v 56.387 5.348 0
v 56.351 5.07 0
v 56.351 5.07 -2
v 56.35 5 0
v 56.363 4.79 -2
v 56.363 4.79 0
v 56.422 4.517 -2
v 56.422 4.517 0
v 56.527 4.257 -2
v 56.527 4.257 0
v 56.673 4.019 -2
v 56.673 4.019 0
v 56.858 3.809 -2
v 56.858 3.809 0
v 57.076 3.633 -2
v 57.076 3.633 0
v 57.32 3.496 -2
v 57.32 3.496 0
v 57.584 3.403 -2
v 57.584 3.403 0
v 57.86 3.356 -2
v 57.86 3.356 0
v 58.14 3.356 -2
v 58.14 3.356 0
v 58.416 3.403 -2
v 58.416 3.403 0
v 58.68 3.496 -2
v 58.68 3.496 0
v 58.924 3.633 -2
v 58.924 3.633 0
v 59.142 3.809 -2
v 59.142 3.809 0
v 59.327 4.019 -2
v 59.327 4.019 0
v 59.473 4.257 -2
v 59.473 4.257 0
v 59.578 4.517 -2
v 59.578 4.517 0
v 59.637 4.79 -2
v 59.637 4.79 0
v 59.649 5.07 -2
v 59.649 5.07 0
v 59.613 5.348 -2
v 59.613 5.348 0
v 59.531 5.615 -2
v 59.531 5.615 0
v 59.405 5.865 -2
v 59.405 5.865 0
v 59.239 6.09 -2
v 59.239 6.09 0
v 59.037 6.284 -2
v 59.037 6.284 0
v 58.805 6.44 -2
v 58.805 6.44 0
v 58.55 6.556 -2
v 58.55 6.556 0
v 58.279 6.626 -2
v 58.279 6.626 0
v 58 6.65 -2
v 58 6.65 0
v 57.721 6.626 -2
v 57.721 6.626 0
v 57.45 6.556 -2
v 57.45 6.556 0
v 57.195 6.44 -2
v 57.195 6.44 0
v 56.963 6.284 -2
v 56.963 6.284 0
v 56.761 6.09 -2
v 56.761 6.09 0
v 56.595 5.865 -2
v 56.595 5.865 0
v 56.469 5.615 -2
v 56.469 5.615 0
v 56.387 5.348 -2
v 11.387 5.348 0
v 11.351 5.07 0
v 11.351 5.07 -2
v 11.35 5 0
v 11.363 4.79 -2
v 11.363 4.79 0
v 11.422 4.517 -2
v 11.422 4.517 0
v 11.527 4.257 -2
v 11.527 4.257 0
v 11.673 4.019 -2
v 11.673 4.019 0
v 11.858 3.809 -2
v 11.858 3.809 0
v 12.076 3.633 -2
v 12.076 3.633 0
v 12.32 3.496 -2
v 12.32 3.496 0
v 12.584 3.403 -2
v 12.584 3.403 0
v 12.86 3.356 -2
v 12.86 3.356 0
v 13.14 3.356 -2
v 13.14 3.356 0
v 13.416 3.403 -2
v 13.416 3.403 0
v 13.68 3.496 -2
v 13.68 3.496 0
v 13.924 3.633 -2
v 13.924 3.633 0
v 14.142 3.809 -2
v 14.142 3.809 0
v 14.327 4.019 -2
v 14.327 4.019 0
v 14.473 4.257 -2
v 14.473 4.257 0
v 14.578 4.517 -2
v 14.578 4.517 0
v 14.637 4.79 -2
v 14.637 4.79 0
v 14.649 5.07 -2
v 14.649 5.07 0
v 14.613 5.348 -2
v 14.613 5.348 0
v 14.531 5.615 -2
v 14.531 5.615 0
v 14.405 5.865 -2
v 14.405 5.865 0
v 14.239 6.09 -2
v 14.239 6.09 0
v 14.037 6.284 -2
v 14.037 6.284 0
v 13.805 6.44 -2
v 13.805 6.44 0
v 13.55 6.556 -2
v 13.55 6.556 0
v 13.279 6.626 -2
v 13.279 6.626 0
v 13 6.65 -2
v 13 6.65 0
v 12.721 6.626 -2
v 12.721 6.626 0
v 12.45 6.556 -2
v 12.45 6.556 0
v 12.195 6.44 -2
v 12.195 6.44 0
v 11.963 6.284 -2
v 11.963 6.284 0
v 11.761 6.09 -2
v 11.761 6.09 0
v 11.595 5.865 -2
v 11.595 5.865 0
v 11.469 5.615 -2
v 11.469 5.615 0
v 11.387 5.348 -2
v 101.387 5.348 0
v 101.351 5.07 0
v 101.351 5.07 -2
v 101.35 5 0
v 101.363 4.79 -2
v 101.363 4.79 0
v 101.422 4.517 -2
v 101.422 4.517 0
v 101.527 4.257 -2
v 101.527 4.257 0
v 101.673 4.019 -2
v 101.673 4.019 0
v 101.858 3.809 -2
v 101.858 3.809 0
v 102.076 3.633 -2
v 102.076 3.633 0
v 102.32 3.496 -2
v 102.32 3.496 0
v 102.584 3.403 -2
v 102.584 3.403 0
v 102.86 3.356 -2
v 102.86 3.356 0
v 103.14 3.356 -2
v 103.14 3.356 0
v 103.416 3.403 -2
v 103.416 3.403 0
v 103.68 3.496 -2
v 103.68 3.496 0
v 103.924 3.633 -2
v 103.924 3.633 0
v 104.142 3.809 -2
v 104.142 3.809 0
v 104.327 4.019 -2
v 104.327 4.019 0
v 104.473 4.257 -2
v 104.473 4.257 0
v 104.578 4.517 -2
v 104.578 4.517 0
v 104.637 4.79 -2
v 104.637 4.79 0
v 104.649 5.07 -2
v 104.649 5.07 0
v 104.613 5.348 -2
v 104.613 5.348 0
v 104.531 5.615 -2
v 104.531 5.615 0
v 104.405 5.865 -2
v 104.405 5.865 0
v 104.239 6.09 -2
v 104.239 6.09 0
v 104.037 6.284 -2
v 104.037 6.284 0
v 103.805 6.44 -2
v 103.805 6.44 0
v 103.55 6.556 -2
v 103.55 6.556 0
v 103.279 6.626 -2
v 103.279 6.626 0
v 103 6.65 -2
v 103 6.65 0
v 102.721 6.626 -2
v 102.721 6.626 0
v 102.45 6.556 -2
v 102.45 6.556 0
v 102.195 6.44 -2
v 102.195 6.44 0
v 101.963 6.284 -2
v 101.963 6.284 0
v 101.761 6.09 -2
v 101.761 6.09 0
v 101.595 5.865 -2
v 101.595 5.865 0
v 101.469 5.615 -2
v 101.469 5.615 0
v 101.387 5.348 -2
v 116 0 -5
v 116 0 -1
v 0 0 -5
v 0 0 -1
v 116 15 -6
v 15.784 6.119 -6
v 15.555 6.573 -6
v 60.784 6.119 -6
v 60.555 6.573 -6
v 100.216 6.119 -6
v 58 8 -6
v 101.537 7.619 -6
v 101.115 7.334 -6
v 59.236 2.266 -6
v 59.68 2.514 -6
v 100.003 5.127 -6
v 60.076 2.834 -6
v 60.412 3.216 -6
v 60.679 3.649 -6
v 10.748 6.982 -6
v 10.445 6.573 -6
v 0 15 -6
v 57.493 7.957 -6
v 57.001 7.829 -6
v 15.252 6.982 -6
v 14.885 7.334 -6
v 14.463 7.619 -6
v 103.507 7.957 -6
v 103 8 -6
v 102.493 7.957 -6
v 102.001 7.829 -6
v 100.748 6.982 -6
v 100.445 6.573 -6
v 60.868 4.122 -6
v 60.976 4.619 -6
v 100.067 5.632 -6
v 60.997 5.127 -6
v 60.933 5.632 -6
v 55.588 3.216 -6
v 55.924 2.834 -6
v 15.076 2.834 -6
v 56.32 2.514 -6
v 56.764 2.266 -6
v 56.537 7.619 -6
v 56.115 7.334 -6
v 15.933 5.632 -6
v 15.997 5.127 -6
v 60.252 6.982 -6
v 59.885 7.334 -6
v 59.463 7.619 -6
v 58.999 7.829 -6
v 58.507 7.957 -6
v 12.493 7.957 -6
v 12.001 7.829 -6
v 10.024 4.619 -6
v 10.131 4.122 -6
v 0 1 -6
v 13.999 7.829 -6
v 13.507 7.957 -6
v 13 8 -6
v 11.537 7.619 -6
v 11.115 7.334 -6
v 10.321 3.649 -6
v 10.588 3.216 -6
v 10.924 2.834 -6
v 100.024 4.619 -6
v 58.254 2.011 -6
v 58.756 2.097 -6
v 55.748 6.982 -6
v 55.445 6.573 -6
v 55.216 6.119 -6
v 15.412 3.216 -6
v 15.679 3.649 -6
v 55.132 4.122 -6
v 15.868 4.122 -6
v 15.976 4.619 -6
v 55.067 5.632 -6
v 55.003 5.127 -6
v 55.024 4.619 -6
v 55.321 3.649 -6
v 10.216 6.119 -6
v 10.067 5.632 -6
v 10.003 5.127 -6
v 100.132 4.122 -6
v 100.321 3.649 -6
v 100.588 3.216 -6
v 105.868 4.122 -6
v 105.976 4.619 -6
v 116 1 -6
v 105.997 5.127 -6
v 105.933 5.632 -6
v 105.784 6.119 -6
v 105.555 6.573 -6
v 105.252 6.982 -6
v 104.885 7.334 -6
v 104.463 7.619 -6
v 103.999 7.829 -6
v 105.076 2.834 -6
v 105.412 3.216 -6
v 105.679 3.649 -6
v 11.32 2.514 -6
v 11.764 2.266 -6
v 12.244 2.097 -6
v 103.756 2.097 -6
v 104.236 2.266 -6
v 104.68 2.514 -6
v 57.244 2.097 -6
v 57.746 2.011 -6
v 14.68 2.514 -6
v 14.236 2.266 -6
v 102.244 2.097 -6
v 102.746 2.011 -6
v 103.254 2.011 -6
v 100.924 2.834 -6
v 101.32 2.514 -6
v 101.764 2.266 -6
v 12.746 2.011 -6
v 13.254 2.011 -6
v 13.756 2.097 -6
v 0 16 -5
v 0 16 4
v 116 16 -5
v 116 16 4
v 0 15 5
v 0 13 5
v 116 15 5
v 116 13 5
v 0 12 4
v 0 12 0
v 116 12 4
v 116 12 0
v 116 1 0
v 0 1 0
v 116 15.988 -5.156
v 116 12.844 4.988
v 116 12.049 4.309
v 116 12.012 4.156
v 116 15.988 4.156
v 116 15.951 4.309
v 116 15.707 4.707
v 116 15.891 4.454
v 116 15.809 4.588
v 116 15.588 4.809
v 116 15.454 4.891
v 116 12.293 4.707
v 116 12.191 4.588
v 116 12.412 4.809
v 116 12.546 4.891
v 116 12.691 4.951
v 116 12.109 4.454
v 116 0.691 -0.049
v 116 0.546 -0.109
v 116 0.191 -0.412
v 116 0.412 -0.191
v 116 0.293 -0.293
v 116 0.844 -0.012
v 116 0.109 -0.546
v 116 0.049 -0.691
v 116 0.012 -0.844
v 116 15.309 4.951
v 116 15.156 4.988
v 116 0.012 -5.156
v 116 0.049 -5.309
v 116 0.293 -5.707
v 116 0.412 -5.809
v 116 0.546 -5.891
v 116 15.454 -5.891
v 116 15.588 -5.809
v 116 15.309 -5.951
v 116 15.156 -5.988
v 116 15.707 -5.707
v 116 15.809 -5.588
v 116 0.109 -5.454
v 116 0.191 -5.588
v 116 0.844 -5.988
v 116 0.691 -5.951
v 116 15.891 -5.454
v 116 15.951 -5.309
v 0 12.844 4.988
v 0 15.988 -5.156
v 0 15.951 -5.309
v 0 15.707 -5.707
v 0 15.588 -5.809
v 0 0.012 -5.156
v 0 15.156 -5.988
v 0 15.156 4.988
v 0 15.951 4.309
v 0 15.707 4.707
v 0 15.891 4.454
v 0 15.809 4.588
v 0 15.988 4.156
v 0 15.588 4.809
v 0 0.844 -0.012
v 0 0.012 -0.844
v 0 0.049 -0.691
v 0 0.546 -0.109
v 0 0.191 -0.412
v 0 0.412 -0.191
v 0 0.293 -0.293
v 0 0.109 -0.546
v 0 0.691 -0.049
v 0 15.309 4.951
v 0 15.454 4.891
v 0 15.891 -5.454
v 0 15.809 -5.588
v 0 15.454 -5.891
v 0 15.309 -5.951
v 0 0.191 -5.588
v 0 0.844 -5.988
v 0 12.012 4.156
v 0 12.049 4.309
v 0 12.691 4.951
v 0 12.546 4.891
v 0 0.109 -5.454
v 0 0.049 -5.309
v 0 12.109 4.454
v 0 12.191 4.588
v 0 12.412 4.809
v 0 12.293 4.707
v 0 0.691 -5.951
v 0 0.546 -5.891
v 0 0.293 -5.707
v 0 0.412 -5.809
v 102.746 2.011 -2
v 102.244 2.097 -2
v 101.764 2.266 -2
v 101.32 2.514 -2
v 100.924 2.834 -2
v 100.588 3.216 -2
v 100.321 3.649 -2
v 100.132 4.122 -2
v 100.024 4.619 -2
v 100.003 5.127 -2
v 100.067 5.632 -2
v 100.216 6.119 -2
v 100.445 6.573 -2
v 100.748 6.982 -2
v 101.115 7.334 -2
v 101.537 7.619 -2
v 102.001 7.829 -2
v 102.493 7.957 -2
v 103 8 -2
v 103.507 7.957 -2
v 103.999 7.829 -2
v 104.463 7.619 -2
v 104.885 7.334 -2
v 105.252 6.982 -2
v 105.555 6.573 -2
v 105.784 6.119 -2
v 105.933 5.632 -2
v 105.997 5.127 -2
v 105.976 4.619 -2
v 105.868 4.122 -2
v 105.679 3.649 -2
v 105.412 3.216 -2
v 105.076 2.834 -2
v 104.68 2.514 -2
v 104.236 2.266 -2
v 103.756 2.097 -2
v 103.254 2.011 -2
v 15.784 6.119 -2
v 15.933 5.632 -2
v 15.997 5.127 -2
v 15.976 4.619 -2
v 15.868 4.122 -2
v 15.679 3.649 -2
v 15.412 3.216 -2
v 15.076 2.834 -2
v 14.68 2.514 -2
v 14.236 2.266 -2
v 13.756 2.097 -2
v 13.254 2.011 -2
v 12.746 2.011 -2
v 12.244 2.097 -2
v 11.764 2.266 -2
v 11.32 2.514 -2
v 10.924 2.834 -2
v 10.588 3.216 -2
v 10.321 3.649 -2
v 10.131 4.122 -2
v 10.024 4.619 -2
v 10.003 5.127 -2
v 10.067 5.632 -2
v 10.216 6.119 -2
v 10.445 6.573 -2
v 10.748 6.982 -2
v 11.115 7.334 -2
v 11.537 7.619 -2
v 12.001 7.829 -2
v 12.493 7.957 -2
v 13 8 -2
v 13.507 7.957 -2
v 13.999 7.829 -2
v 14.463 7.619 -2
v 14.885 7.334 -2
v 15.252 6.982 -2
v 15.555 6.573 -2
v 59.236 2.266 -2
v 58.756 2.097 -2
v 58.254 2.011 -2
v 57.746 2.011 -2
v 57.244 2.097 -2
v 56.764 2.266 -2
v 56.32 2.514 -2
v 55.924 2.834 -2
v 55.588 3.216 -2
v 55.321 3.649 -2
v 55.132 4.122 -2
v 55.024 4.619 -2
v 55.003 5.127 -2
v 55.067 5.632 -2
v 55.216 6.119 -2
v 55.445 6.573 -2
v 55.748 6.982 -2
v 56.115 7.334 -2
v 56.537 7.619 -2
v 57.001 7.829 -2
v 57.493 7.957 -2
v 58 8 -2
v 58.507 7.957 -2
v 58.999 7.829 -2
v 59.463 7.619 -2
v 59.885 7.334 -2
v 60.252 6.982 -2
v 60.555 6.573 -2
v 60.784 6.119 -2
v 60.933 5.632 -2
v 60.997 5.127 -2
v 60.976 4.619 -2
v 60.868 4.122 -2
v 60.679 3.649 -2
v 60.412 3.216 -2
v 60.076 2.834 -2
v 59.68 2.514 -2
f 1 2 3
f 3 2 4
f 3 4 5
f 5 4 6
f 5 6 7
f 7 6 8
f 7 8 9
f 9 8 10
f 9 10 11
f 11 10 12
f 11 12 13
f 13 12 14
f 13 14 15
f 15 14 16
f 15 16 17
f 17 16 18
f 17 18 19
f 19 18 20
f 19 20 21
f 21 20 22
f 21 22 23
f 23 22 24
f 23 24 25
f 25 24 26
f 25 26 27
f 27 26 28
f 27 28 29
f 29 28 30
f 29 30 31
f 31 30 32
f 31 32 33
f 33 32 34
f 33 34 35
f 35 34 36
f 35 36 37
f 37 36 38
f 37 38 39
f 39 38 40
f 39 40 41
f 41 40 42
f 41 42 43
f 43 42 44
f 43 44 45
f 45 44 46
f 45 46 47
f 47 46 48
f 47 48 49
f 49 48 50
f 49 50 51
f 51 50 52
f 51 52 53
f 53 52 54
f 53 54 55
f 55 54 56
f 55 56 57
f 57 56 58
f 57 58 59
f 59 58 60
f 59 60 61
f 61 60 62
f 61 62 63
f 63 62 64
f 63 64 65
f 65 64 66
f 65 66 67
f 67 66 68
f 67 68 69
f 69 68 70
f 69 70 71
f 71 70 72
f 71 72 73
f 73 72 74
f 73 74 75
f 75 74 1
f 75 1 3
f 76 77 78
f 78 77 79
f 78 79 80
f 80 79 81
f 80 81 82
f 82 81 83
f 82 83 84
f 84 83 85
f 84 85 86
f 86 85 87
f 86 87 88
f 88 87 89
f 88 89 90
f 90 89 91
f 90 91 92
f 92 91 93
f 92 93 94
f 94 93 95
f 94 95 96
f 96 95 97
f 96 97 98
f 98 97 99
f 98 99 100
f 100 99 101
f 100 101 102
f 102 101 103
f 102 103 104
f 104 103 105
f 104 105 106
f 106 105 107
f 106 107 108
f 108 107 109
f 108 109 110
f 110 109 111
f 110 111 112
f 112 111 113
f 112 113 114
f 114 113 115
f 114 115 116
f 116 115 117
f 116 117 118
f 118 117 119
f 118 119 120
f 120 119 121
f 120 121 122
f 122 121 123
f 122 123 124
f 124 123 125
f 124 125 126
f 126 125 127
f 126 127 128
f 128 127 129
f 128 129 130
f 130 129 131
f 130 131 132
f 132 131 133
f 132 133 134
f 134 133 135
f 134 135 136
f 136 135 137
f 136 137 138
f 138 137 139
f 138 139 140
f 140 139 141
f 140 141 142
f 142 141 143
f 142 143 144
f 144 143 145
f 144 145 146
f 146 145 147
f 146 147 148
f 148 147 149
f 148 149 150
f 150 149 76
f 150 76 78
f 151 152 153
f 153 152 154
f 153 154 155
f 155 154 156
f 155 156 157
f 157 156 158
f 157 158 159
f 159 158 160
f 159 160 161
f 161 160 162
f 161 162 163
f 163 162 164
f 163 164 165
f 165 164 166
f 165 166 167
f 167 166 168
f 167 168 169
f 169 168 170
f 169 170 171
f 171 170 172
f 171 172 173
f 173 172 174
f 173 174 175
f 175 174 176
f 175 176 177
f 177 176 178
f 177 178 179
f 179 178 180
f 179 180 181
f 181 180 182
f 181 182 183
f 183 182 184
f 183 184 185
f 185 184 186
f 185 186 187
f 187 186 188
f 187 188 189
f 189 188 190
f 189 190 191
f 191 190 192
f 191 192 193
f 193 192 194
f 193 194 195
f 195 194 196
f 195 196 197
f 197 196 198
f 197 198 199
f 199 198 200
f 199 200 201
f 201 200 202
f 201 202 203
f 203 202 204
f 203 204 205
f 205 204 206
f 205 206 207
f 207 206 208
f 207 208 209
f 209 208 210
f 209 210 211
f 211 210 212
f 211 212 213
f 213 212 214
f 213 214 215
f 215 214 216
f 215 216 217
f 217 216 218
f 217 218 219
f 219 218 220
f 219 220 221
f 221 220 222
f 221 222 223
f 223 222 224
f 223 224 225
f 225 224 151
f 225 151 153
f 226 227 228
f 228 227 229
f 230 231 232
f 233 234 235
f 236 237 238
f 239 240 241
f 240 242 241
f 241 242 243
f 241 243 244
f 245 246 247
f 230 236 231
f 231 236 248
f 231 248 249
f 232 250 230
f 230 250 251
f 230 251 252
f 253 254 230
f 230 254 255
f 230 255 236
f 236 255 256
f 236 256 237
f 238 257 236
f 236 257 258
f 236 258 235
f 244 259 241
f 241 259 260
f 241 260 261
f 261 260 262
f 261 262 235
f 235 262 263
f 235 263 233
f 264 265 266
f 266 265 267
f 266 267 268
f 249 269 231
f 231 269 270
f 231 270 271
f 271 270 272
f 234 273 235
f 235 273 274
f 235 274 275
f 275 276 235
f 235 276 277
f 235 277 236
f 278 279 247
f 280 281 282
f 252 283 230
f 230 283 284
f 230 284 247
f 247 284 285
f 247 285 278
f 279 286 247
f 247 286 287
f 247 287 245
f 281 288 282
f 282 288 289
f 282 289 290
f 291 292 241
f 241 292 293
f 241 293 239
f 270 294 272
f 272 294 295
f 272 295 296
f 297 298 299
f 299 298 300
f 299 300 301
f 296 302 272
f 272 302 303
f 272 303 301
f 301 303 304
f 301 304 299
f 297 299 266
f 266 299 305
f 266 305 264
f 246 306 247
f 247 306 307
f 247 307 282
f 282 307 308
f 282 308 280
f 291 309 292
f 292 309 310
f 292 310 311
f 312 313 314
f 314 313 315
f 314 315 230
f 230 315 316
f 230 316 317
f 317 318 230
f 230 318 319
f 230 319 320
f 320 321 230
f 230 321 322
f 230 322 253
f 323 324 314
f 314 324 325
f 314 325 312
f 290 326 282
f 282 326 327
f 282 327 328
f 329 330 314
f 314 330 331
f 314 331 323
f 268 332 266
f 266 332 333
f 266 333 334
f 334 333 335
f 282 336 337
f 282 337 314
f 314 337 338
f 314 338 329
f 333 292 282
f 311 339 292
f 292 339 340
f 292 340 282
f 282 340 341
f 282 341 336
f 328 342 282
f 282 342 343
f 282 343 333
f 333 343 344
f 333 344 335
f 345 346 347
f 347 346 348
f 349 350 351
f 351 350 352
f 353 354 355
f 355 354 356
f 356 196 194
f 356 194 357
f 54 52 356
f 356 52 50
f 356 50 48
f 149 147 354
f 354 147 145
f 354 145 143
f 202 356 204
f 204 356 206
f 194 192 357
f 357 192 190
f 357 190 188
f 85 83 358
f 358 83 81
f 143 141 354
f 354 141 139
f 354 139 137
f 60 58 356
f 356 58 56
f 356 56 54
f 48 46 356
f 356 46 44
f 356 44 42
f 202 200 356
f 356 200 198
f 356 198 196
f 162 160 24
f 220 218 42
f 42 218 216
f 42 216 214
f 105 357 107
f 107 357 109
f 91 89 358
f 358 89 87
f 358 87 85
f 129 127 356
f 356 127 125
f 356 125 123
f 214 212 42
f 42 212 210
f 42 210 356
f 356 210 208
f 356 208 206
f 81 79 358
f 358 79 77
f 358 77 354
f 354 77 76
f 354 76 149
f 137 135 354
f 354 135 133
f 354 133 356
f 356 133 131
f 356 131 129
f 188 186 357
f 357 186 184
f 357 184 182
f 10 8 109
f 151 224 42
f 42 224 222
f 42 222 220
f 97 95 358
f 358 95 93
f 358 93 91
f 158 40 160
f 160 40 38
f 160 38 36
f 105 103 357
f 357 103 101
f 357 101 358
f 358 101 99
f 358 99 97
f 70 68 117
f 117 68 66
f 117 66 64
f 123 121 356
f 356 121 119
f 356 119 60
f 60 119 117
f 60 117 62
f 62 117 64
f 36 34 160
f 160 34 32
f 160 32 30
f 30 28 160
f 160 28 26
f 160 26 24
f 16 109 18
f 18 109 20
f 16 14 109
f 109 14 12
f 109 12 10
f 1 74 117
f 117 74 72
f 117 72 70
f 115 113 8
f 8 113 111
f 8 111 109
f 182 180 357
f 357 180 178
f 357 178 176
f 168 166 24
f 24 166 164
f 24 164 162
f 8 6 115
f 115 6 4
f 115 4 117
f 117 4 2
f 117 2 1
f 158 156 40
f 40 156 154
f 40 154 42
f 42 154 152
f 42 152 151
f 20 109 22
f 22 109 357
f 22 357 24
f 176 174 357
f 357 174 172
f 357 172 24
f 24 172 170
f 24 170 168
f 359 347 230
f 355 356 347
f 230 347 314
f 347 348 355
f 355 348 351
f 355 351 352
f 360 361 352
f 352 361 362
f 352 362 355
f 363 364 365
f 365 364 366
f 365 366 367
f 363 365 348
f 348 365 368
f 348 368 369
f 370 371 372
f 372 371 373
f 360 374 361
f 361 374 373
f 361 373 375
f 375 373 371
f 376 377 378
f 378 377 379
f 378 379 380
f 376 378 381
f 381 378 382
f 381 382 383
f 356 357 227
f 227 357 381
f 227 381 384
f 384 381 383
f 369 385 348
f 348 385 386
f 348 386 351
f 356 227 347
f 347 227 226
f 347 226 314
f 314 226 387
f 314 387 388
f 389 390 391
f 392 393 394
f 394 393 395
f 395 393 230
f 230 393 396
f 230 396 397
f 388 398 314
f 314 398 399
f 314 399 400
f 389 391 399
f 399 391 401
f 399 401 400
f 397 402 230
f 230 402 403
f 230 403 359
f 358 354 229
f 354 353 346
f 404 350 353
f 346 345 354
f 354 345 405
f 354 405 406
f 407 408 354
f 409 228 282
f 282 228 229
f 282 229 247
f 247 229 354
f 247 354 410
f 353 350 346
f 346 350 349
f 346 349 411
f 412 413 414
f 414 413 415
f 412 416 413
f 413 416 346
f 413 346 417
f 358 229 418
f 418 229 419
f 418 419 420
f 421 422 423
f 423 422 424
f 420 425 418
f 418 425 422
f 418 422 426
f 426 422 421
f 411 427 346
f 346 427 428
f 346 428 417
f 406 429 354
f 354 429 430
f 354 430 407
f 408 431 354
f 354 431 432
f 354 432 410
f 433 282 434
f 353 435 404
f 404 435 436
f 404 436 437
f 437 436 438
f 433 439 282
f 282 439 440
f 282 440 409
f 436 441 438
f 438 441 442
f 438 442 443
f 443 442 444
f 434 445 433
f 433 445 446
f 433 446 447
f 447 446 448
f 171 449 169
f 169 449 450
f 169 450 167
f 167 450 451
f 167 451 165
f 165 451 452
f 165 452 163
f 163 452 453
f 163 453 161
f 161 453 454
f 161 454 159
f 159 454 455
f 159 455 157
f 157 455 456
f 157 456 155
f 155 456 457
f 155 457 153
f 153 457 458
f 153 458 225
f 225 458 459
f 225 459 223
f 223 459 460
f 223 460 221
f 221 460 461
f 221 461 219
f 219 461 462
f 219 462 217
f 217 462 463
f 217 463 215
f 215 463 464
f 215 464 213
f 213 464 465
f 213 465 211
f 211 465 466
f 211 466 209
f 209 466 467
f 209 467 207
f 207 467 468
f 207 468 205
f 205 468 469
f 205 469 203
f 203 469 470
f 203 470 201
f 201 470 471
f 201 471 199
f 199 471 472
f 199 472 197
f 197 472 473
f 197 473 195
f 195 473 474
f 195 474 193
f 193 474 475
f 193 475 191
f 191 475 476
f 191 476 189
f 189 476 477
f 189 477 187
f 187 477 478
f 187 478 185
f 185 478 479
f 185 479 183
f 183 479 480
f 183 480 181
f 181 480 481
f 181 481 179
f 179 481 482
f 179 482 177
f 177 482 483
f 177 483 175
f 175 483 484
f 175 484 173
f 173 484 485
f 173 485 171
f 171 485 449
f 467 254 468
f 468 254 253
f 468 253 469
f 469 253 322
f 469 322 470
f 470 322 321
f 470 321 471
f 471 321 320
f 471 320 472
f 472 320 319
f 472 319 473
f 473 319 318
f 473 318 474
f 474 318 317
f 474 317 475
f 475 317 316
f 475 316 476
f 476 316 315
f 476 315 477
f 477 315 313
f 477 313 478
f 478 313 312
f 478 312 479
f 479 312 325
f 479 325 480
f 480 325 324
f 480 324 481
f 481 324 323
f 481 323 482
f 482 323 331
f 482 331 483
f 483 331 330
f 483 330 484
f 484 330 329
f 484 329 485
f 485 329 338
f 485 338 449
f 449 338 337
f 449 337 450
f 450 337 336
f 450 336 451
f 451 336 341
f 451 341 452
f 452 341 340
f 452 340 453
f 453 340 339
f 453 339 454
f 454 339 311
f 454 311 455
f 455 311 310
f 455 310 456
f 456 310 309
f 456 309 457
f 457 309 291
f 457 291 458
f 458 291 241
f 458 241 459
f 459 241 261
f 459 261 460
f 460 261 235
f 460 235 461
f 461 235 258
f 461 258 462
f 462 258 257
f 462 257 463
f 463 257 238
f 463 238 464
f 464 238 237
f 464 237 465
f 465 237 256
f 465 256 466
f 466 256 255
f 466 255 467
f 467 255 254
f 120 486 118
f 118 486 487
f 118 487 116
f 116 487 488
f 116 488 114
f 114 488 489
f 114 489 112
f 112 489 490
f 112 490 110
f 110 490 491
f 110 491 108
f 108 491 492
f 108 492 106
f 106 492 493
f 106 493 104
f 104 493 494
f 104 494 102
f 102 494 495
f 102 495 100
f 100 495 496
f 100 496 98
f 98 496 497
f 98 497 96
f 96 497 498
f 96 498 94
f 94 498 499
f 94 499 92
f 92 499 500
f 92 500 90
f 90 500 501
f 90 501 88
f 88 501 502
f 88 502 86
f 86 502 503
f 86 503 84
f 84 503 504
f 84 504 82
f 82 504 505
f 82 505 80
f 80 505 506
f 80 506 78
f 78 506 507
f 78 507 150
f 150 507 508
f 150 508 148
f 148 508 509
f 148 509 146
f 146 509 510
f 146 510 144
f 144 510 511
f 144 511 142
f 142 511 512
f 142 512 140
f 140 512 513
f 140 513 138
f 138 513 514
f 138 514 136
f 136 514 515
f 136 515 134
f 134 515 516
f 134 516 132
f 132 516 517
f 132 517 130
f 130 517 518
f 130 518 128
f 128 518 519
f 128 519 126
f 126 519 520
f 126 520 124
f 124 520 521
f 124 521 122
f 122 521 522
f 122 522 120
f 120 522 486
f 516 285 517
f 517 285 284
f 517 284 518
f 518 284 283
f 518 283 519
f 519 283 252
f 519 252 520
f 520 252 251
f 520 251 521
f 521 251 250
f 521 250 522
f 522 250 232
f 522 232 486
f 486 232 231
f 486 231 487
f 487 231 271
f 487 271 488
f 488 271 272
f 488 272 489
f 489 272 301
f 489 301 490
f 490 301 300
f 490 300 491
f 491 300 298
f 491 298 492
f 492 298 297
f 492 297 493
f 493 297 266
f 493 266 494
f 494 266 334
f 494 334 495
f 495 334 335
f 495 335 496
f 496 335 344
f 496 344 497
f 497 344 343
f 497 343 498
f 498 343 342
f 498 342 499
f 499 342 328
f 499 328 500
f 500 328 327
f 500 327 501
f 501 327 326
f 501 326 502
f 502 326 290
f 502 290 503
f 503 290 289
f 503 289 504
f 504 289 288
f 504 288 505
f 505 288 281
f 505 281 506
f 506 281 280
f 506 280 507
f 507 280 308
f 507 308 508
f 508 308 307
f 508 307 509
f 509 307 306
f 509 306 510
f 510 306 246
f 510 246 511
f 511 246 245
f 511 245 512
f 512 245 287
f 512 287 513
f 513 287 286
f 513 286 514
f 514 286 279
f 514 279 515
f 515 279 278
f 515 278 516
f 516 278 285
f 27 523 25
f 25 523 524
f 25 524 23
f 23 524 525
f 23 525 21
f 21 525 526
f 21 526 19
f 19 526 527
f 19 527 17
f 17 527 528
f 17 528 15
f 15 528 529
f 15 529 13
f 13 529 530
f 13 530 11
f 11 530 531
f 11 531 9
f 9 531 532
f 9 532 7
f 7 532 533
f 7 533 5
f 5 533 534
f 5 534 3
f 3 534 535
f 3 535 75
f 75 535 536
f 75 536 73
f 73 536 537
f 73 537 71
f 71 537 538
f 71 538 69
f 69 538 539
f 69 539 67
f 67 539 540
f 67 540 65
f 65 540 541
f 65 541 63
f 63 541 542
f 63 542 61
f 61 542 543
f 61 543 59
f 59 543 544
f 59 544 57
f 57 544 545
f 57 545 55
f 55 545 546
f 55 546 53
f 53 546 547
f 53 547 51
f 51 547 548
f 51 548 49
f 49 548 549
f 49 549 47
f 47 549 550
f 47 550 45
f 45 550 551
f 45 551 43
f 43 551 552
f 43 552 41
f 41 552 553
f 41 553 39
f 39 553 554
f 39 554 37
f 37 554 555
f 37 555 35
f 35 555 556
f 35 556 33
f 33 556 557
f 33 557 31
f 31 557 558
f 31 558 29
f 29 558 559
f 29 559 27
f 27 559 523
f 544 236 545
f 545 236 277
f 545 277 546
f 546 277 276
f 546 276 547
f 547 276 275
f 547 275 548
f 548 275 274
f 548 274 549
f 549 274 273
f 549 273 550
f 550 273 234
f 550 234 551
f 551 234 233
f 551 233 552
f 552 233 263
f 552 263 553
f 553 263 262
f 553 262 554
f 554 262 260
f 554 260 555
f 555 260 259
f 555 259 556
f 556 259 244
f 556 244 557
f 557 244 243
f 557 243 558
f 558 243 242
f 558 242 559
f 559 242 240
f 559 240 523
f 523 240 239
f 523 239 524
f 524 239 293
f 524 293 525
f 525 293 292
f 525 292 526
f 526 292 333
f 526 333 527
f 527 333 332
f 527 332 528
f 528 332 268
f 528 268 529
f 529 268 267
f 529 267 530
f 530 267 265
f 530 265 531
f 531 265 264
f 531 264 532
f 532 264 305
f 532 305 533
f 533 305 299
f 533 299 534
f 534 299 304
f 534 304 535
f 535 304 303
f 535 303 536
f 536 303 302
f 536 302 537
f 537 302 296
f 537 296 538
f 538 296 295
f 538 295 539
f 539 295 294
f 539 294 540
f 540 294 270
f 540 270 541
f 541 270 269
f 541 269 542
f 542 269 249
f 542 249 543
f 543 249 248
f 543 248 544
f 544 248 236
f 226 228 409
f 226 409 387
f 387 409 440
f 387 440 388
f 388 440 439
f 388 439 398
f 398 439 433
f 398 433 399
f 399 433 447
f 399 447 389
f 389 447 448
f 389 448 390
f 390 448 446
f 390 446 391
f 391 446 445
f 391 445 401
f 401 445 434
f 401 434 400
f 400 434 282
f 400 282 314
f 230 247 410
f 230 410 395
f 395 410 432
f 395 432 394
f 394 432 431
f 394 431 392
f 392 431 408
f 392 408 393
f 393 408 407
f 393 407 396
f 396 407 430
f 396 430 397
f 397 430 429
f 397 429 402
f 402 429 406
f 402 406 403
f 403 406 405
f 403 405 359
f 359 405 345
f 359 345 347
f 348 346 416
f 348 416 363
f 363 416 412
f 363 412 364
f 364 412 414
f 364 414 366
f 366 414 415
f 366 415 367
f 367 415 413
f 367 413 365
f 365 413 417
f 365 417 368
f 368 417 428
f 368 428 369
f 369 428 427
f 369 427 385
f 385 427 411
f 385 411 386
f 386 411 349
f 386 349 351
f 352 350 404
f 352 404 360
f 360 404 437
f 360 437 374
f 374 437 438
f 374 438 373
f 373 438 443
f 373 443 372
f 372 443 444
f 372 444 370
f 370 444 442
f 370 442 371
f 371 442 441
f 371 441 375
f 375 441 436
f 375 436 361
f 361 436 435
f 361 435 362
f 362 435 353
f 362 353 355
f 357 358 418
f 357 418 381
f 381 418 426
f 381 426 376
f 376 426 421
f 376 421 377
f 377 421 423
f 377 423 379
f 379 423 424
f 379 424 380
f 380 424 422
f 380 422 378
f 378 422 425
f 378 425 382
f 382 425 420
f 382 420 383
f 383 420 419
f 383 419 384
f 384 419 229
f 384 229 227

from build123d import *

# Parameters (mm, degrees)
BOSS_EXTRUDE1_DEPTH = 116
CUT_EXTRUDE1_REACH  = 13
SKETCH3_R           = 1.65
SKETCH4_R           = 3
CUT_EXTRUDE2_DEPTH  = 4
FILLET1_R           = 1


with BuildPart() as part:
    # Sketch2 → Boss-Extrude1 (new body)
    with BuildSketch(Plane(origin=(0, 0, 0), x_dir=(0, 0, -1), z_dir=(1, 0, 0))):
        Polygon((0, 0), (0, 12), (-5, 12), (-5, 16), (6, 16), (6, 0), align=None)
    extrude(amount=BOSS_EXTRUDE1_DEPTH)

    # Sketch3 → Cut-Extrude1 (cut, up to next)
    with BuildSketch(Plane(origin=(0, 0, -6), x_dir=(-1, 0, 0), z_dir=(0, 0, -1)), mode=Mode.PRIVATE) as cut_extrude1_sk1:
        with Locations((-103, 5)):
            Circle(SKETCH3_R)
    cut_extrude1_tool1 = extrude(cut_extrude1_sk1.sketch, amount=-CUT_EXTRUDE1_REACH, mode=Mode.PRIVATE) & part.part
    add(cut_extrude1_tool1.solids().sort_by_distance((103, 5, -6))[0], mode=Mode.SUBTRACT)
    # Sketch3 → Cut-Extrude1 (cut, up to next)
    with BuildSketch(Plane(origin=(0, 0, -6), x_dir=(-1, 0, 0), z_dir=(0, 0, -1)), mode=Mode.PRIVATE) as cut_extrude1_sk2:
        with Locations((-13, 5)):
            Circle(SKETCH3_R)
    cut_extrude1_tool2 = extrude(cut_extrude1_sk2.sketch, amount=-CUT_EXTRUDE1_REACH, mode=Mode.PRIVATE) & part.part
    add(cut_extrude1_tool2.solids().sort_by_distance((13, 5, -6))[0], mode=Mode.SUBTRACT)
    # Sketch3 → Cut-Extrude1 (cut, up to next)
    with BuildSketch(Plane(origin=(0, 0, -6), x_dir=(-1, 0, 0), z_dir=(0, 0, -1)), mode=Mode.PRIVATE) as cut_extrude1_sk3:
        with Locations((-58, 5)):
            Circle(SKETCH3_R)
    cut_extrude1_tool3 = extrude(cut_extrude1_sk3.sketch, amount=-CUT_EXTRUDE1_REACH, mode=Mode.PRIVATE) & part.part
    add(cut_extrude1_tool3.solids().sort_by_distance((58, 5, -6))[0], mode=Mode.SUBTRACT)

    # Sketch4 → Cut-Extrude2 (cut)
    with BuildSketch(Plane(origin=(0, 0, -6), x_dir=(-1, 0, 0), z_dir=(0, 0, -1))):
        with Locations((-103, 5)):
            Circle(SKETCH4_R)
        with Locations((-58, 5)):
            Circle(SKETCH4_R)
        with Locations((-13, 5)):
            Circle(SKETCH4_R)
    extrude(amount=-CUT_EXTRUDE2_DEPTH, mode=Mode.SUBTRACT)

    # Fillet1
    fillet1_edges = [part.edges().sort_by_distance(p)[0] for p in [
        (58, 0, 0),
        (58, 12, 5),
        (58, 16, 5),
        (58, 16, -6),
        (58, 0, -6),
    ]]
    fillet(fillet1_edges, radius=FILLET1_R)


solid = part.part
